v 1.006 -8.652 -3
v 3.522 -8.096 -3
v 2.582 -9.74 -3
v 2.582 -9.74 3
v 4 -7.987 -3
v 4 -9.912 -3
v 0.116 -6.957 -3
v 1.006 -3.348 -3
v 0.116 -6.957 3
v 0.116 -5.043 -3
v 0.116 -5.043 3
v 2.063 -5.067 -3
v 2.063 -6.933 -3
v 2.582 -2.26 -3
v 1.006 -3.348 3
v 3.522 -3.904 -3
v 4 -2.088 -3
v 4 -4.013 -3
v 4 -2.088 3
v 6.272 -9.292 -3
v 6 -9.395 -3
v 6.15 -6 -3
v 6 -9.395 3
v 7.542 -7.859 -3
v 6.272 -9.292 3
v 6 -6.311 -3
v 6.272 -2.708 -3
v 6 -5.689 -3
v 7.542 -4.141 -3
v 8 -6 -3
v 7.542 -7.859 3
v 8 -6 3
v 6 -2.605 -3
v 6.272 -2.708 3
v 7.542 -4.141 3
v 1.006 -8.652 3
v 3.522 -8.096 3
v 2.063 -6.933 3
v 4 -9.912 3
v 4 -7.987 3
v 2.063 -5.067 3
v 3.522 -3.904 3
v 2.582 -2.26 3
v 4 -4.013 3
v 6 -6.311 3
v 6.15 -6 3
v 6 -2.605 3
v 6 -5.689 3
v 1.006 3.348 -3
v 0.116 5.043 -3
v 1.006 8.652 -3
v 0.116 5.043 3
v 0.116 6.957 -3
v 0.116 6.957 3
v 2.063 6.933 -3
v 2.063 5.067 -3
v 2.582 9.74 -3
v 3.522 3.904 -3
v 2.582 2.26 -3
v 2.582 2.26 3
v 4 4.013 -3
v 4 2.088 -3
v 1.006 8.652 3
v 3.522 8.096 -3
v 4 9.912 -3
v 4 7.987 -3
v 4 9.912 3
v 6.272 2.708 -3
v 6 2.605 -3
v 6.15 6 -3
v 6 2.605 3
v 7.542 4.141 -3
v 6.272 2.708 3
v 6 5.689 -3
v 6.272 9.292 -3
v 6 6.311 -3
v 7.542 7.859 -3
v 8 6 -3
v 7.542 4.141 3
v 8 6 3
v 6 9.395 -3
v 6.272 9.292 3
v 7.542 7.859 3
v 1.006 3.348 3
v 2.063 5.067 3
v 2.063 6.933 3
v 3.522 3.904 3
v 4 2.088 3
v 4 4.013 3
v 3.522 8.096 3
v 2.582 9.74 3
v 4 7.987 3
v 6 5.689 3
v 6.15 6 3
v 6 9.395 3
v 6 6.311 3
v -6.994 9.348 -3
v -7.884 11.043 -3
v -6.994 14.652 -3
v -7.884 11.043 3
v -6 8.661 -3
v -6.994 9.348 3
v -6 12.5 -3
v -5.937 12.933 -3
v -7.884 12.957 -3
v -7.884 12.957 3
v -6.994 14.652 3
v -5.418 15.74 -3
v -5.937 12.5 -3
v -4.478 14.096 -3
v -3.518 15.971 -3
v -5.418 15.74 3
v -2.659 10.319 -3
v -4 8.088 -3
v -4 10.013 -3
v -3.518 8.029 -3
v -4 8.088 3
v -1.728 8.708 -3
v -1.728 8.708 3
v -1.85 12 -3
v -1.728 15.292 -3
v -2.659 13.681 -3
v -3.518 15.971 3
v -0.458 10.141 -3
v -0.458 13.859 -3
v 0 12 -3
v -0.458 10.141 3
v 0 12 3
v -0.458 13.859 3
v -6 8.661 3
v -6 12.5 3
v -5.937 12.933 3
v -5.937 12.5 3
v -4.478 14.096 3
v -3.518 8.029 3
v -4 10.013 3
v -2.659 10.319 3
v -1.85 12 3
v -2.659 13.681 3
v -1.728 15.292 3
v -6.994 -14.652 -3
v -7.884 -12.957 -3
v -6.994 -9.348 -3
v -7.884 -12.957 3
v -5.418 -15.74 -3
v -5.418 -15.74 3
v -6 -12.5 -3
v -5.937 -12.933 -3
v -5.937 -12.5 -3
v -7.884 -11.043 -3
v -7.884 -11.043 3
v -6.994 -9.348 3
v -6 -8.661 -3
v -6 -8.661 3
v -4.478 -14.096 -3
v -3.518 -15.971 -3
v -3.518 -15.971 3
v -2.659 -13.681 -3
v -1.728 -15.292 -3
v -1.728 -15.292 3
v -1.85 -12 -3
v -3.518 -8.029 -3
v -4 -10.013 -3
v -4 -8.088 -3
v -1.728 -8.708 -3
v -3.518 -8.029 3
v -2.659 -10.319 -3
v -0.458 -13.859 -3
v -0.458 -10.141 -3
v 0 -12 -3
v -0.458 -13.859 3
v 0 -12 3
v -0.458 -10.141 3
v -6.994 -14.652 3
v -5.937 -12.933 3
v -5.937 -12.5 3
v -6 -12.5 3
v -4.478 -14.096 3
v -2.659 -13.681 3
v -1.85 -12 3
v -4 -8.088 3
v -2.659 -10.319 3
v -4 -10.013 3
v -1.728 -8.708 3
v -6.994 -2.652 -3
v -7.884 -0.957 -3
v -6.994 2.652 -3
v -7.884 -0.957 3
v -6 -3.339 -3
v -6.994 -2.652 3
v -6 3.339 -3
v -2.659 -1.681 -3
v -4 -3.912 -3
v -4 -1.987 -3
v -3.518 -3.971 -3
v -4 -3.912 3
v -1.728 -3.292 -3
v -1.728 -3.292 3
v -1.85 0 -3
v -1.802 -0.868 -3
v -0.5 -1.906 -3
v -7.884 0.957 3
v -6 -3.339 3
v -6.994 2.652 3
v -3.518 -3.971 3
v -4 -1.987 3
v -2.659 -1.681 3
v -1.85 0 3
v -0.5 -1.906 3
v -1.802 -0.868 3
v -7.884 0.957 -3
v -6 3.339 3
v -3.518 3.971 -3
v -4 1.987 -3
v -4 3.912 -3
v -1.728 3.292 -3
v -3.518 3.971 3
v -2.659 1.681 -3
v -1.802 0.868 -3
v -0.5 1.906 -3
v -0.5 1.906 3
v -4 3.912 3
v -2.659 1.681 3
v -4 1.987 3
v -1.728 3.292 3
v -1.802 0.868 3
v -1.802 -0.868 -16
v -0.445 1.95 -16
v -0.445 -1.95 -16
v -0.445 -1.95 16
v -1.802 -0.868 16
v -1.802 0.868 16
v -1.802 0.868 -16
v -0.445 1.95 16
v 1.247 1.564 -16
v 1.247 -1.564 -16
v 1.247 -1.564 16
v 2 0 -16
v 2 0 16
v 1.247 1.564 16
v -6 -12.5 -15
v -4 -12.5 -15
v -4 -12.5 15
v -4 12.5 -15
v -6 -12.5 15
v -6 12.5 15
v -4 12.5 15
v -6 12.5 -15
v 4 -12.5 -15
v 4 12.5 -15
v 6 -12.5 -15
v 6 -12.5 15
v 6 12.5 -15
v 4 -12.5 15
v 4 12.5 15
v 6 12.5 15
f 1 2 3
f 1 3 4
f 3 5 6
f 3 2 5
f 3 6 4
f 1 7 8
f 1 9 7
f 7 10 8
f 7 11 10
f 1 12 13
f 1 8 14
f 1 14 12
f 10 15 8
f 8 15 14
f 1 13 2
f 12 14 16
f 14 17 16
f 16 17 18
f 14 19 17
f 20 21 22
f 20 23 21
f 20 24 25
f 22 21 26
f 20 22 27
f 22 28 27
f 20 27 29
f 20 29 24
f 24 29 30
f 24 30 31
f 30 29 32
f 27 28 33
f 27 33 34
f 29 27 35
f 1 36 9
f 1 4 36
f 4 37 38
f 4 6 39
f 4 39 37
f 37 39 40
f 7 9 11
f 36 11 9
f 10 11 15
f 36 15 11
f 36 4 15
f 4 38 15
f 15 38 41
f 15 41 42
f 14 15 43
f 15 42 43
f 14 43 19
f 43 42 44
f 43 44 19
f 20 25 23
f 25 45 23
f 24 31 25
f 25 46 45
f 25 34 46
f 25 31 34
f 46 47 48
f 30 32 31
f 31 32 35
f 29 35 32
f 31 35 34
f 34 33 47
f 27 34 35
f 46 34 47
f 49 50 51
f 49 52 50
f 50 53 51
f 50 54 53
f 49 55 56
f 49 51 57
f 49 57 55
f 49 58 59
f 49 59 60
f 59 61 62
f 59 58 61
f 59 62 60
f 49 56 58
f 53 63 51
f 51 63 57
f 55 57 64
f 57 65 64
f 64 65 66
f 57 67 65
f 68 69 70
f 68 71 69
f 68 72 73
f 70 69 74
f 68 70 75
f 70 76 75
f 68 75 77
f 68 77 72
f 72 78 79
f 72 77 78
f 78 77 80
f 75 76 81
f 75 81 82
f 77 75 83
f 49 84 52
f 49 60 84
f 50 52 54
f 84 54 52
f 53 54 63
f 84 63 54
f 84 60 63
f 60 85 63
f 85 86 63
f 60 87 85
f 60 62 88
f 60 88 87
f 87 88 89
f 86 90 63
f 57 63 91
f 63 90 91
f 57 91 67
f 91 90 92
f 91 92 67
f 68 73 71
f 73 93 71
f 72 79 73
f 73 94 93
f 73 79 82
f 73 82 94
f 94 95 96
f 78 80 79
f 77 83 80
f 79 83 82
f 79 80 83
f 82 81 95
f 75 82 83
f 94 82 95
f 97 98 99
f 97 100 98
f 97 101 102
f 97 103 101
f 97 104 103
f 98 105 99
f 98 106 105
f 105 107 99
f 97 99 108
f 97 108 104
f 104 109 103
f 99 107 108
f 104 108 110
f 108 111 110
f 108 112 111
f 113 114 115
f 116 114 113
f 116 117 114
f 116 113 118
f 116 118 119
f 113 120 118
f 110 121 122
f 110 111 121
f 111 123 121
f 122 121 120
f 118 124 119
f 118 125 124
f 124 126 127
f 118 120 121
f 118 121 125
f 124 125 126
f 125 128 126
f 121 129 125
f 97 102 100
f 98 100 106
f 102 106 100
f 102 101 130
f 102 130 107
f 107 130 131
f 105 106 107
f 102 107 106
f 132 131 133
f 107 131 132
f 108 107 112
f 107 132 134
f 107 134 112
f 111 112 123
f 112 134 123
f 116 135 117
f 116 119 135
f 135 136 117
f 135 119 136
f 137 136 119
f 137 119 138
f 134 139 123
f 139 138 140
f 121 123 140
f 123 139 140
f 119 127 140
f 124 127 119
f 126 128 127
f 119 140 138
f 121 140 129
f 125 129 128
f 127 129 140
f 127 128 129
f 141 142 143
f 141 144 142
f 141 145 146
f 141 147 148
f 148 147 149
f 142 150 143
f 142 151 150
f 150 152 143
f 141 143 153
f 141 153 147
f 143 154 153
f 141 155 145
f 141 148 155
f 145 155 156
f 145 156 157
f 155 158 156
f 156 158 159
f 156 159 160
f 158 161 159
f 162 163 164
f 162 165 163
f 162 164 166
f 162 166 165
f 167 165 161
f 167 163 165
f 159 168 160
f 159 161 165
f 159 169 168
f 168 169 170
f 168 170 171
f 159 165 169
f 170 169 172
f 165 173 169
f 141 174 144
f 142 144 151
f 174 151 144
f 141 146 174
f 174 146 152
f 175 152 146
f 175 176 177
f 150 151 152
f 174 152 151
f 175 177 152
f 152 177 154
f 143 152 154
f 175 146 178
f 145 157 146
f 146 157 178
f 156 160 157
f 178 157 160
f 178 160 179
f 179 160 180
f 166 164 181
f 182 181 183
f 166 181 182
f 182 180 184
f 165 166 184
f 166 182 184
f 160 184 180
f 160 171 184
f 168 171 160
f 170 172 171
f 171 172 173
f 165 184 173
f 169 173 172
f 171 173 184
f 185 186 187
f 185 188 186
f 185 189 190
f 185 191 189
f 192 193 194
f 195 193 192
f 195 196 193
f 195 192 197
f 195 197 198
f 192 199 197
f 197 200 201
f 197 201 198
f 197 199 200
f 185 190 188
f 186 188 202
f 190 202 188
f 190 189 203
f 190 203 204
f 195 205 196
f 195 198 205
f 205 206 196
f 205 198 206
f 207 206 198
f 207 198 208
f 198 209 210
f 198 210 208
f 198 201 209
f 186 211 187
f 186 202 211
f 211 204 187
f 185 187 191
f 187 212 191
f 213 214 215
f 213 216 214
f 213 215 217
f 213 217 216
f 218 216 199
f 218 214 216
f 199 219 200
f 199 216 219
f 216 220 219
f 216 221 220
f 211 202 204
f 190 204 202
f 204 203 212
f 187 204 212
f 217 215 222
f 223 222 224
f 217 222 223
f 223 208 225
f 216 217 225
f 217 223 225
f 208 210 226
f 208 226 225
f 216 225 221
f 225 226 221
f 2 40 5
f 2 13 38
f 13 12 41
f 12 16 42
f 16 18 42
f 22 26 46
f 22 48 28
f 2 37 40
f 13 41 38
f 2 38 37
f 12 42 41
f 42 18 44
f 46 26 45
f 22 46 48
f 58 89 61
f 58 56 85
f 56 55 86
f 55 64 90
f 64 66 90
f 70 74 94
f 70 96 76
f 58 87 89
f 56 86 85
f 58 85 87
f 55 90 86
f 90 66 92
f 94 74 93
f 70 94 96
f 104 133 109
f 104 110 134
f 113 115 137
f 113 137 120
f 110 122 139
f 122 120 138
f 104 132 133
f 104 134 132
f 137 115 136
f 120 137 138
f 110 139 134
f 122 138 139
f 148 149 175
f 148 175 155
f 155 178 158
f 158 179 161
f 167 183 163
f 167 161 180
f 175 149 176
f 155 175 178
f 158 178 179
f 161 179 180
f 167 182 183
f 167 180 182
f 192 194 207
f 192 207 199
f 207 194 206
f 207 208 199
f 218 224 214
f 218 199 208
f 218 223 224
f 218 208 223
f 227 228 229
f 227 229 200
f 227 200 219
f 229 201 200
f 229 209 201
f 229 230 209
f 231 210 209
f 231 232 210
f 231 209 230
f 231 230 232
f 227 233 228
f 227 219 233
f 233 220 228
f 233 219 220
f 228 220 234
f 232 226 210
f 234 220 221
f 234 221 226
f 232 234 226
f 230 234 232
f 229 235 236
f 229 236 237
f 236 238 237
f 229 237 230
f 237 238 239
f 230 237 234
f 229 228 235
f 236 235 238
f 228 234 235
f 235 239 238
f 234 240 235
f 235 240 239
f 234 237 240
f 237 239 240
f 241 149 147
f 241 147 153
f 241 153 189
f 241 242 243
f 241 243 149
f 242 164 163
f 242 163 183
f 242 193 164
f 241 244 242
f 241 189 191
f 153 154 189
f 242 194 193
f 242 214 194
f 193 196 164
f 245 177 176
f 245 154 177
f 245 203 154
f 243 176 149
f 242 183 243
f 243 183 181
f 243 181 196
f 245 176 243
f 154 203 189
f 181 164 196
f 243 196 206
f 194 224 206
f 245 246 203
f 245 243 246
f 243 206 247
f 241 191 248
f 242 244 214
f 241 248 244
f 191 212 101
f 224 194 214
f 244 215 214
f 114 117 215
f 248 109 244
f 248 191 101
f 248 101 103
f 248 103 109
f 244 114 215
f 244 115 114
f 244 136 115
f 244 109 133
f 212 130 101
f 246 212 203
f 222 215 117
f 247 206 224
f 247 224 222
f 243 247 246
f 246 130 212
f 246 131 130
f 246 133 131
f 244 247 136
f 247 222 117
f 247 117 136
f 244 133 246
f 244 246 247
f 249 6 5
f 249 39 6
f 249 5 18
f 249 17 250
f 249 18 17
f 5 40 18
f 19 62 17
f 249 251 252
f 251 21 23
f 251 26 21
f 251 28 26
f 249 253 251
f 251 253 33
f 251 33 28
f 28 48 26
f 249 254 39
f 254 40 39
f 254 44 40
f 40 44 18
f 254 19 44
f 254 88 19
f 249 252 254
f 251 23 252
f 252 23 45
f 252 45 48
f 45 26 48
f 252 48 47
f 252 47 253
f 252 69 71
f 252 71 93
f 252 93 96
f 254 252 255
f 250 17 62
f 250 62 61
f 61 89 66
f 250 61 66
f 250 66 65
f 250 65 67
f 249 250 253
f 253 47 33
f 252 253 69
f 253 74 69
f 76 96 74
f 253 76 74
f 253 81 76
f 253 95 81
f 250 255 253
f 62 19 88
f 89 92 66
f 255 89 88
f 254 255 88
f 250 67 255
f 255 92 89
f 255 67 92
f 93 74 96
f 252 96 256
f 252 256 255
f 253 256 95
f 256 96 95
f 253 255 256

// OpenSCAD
// Parameters
leaf_width = 25;
leaf_height = 30;
leaf_thickness = 2;
pin_diameter = 4;
pin_length = 32;
knuckle_outer_diameter = 8;
knuckle_inner_diameter = pin_diameter + 0.3;
knuckle_height = 6; // 30mm / 5 equal parts
num_knuckles_left = 3;
num_knuckles_right = 2;
m3_countersink_diameter = 6;
m3_countersink_depth = 1;
m3_hole_diameter = 3.2;
m3_hole_spacing = 8;

module pin() {
    cylinder(h = pin_length, d = pin_diameter, center = true);
}

module knuckle(side) {
    difference() {
        cylinder(h = knuckle_height, d = knuckle_outer_diameter, center = true);
        cylinder(h = knuckle_height + 0.1, d = knuckle_inner_diameter, center = true); // +0.1 to ensure clean cut
    }
}

// Helper module for creating a conical void
module conical_void(depth, d1, d2) {
    hull() {
        circle(d = d1);
        translate([depth, 0, 0]) circle(d = d2);
    }
}

module m3_countersink(side) {
    // The countersink void is created on the outer face of the leaf.
    // The current coordinate system has X-axis pointing outwards from the leaf face.

    // Frustum part of the countersink
    conical_void(m3_countersink_depth, m3_countersink_diameter, m3_hole_diameter);

    // Cylinder part for the through hole
    // This cylinder starts where the frustum ends.
    translate([m3_countersink_depth, 0, 0]) {
        cylinder(h = leaf_thickness - m3_countersink_depth, d = m3_hole_diameter, center = false);
    }
}


module leaf(side) {
    // Base leaf shape
    cube([leaf_thickness, leaf_width, leaf_height], center = true);

    // Mount holes
    // Position for mount holes along the leaf's height.
    // The leaf is centered at Y=0 and extends from -leaf_width/2 to leaf_width/2.
    // The height is along the Z-axis.
    // The prompt states "板の縦方向に 8mm 間隔" -> this refers to the leaf's height (30mm).
    // The current leaf shape is oriented with its 30mm dimension along the Z-axis.
    // The knuckles are along the Y-axis.
    // So the holes are on the flat face (YZ plane).
    // The positions should be along the Z-axis.

    // Leaf height is 30mm, centered at Z=0. So from -15 to 15.
    // Holes at -m3_hole_spacing, 0, m3_hole_spacing.
    // This is relative to the center of the leaf.
    // The mount holes are on the surface of the leaf, so we need to translate them to the face.
    // The X-position of the face is `side * leaf_thickness / 2`.

    // Corrected positioning of mount holes:
    translate([side * (leaf_thickness / 2), 0, -m3_hole_spacing]) {
        m3_countersink(side);
    }
    translate([side * (leaf_thickness / 2), 0, 0]) {
        m3_countersink(side);
    }
    translate([side * (leaf_thickness / 2), 0, m3_hole_spacing]) {
        m3_countersink(side);
    }
}

// Assemble the hinge in 180 degree open state
module butt_hinge() {
    // Pin
    pin();

    // Left knuckles and leaf plate
    // Knuckle Y-positions for left leaf: [-12, 0, 12]
    // These positions are relative to the center of the hinge barrel stack.
    // The knuckle centers are offset from the Y-axis.
    // The left knuckles are on the X < 0 side of the pin's YZ plane.
    // Their X-center position is -(knuckle_outer_diameter/2).
    for (i = [0 : num_knuckles_left - 1]) {
        translate([-knuckle_outer_diameter/2, [-12, 0, 12][i], 0]) {
            knuckle(-1); // -1 indicates left side
        }
    }
    // Left leaf plate positioned to the outside of its knuckles.
    // The leaf plate's face is aligned with the outer edge of the knuckles.
    translate([-(knuckle_outer_diameter/2 + leaf_thickness/2), 0, 0]) {
        leaf(-1); // -1 indicates left side
    }

    // Right knuckles and leaf plate
    // Knuckle Y-positions for right leaf: [-6, 6]
    // The right knuckles are on the X > 0 side of the pin's YZ plane.
    // Their X-center position is +(knuckle_outer_diameter/2).
    for (i = [0 : num_knuckles_right - 1]) {
        translate([knuckle_outer_diameter/2, [-6, 6][i], 0]) {
            knuckle(1); // 1 indicates right side
        }
    }
    // Right leaf plate positioned to the outside of its knuckles.
    translate([knuckle_outer_diameter/2 + leaf_thickness/2, 0, 0]) {
        leaf(1); // 1 indicates right side
    }
}

// Position the hinge at the origin for final rendering
translate([0, 0, 0]) {
    butt_hinge();
}
